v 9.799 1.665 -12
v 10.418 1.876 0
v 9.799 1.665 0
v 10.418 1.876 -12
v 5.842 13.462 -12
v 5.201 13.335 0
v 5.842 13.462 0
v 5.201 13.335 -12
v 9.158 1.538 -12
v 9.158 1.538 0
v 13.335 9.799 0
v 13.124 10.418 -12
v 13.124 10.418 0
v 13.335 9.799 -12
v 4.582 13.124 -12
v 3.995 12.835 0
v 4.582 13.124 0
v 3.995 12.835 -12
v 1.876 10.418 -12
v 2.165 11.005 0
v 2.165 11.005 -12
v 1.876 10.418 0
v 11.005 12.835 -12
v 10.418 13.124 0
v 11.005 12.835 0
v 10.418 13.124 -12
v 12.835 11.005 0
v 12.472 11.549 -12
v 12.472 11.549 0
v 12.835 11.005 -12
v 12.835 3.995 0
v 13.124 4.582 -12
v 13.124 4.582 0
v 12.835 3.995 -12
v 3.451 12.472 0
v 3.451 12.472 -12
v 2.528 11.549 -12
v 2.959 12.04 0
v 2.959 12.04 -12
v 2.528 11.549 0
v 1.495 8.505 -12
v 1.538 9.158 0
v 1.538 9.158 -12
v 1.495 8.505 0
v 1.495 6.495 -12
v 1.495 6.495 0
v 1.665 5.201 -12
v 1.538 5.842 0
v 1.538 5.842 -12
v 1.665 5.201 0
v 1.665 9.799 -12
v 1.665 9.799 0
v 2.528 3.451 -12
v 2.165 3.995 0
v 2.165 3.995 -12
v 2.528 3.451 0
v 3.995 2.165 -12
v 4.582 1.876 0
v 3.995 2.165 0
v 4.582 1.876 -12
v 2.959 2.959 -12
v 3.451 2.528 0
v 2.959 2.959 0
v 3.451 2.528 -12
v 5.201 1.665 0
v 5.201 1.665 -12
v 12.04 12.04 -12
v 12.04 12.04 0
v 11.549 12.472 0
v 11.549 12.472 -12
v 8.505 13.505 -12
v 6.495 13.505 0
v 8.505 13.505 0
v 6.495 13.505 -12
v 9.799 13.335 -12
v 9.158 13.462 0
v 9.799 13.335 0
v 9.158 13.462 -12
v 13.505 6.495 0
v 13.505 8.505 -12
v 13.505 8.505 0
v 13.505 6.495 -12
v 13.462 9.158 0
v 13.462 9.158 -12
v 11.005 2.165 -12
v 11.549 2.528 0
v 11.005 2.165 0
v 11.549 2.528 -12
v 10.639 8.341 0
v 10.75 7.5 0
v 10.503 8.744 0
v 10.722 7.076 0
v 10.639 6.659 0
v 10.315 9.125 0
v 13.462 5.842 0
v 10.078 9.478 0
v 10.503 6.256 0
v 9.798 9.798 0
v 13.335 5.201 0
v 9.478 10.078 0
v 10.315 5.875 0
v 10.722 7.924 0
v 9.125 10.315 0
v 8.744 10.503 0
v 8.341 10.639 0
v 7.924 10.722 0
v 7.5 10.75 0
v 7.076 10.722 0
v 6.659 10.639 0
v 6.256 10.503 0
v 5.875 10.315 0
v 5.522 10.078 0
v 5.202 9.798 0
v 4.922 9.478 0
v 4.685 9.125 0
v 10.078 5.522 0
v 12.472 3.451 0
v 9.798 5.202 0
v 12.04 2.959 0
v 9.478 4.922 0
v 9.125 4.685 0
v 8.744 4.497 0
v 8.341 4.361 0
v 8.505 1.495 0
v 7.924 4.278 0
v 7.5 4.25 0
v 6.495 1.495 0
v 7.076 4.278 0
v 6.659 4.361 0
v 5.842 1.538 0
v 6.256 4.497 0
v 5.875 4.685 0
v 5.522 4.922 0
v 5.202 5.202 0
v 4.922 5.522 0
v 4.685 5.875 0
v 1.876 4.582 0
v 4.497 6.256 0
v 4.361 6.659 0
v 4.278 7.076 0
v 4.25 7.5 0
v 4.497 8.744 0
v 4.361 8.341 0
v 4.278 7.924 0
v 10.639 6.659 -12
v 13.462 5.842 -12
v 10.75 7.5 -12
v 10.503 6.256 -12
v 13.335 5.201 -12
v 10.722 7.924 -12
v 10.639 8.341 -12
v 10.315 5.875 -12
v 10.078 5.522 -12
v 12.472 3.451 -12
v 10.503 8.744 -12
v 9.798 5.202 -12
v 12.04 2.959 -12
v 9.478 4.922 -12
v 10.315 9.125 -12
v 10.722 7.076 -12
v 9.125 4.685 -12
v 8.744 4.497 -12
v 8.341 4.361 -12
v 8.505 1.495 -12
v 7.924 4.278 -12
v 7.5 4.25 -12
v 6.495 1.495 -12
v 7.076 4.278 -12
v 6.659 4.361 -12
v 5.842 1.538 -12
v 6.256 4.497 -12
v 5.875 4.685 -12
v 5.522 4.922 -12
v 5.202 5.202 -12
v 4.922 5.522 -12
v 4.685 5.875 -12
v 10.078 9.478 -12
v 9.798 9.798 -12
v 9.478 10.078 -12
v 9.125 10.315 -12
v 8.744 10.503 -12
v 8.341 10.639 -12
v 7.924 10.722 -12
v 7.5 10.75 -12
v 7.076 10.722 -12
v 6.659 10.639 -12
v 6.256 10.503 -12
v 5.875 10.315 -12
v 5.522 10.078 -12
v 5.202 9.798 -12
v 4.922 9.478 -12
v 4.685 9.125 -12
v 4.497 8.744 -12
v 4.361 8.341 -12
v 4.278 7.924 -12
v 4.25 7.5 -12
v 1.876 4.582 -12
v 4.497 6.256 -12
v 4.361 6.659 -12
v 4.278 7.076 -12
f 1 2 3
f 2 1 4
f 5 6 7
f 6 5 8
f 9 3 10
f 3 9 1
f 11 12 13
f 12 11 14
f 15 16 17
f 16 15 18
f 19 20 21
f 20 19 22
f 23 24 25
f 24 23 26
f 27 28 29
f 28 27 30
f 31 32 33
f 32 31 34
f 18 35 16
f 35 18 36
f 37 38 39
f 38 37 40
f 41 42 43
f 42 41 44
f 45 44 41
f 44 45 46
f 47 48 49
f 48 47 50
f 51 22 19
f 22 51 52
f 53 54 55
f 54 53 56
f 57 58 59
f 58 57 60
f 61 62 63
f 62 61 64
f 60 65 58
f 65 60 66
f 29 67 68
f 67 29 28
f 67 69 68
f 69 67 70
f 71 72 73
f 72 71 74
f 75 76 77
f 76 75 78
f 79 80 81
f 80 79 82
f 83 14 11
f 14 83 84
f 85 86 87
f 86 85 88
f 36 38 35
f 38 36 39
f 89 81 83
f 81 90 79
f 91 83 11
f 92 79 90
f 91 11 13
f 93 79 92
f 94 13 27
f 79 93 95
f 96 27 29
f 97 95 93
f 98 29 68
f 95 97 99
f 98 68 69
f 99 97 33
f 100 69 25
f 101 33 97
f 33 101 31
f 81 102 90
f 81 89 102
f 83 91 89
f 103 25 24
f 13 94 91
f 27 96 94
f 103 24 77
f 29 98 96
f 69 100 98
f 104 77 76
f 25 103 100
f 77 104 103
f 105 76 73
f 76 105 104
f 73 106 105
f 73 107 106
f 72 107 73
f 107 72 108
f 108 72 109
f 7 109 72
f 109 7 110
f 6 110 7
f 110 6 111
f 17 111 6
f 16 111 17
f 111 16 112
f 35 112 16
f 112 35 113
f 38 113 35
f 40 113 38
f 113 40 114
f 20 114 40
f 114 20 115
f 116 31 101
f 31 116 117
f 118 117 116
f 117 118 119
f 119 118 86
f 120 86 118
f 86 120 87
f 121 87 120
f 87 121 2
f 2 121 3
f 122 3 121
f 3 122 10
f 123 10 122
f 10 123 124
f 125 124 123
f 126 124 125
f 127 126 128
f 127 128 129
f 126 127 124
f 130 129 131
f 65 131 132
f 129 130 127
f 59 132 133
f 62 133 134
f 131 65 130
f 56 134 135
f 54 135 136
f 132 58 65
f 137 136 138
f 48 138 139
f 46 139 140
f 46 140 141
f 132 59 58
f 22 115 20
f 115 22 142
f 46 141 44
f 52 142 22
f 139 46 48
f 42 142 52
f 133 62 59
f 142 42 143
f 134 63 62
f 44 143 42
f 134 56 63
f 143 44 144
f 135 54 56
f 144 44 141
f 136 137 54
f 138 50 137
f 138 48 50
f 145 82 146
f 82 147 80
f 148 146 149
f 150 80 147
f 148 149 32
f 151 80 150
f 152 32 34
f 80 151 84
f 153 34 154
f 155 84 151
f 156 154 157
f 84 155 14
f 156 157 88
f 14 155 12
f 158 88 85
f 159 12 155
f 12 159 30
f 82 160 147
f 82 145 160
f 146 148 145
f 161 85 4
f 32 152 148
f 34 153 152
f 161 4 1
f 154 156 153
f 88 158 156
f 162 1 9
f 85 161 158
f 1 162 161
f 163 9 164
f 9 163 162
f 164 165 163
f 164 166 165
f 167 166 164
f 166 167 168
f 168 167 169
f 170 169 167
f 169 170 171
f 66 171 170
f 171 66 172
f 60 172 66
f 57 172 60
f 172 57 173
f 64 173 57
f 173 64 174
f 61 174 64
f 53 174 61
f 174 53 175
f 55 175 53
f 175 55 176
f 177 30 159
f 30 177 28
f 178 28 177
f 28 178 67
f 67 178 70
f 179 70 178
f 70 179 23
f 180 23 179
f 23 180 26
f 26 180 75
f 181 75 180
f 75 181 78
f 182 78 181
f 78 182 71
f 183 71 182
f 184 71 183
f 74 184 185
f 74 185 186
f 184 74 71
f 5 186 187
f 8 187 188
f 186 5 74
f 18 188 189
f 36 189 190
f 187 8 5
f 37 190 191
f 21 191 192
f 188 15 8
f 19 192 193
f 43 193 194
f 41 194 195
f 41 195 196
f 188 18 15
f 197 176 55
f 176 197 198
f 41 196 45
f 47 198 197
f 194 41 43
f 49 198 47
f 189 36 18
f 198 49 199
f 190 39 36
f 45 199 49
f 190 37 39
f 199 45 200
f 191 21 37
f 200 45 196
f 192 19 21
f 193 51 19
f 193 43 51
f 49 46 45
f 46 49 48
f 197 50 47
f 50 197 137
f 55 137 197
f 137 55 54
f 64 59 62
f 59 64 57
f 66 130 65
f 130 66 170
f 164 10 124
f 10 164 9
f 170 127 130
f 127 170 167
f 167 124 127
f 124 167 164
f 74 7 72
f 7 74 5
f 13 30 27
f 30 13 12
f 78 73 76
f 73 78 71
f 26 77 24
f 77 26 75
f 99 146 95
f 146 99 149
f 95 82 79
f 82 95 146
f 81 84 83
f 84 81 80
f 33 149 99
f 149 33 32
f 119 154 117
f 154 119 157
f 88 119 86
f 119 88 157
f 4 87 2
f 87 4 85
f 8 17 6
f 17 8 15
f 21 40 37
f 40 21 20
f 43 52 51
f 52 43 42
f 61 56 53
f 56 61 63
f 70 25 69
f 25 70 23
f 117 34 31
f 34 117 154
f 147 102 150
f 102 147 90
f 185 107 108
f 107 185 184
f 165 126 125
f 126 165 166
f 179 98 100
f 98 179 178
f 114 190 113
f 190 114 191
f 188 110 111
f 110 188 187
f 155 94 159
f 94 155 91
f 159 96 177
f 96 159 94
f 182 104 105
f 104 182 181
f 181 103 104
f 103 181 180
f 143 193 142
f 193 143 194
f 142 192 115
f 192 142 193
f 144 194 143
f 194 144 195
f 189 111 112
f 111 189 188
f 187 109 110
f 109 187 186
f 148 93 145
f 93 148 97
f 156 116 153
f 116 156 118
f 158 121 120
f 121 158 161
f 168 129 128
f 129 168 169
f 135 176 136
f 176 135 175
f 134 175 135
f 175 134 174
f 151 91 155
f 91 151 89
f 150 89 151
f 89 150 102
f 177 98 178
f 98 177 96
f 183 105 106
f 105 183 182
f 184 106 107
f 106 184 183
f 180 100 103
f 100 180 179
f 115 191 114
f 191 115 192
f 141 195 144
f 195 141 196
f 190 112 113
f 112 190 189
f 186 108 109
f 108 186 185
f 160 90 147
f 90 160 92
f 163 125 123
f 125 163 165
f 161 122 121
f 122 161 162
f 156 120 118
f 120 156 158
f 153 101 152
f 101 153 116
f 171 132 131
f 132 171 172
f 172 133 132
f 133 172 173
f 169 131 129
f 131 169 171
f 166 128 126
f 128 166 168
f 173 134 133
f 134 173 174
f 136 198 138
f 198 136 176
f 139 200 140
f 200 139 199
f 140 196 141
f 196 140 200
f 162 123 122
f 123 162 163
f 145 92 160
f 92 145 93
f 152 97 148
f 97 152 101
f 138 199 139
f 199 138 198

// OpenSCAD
// Generated by SolidPython 1.1.3 on 2022-09-14 11:03:27
$fn = 48;


difference() {
	union() {
		color(alpha = 1.0000000000, c = "Gold") {
			translate(v = [7.5000000000, 7.5000000000, 0]) {
				rotate(a = [0, 0, 0]) {
					translate(v = [0, 0, -12]) {
						linear_extrude(height = 12) {
							offset(r = 5) {
								square(center = true, size = [2.0100000000, 2.0100000000]);
							}
						}
					}
				}
			}
		}
	}
	union() {
		color(alpha = 1.0000000000, c = "Gold") {
			translate(v = [7.5000000000, 7.5000000000, 0]) {
				rotate(a = [0, 0, 0]) {
					translate(v = [0, 0, -250]) {
						cylinder(h = 500, r = 3.2500000000);
					}
				}
			}
		}
	}
}
/***********************************************
*********      SolidPython code:      **********
************************************************
 
import subprocess

from solid.objects import *
from solid import scad_render_to_file, scad_render

import os

##################################################################################################################################################
##################################################################################################################################################
##################################################################################################################################################
##################################################################################################################################################
######  DIMENSION STUFF
##################################################################################################################################################
##################################################################################################################################################
##################################################################################################################################################
##################################################################################################################################################


mode = "3DPR"
#mode = "LAZE"
#mode = "TURE"
#mode = ""


######  Countersunk
countersunkM = []
WIDTH = 0
DEPTH = 1
countersunkM1width = 0; countersunkM1depth = 0; countersunkM2width = 0; countersunkM2depth = 0
countersunkM3width = 0
countersunkM3depth = 0
countersunkM4width = 0
countersunkM4depth = 0
countersunkM5width = 0
countersunkM5depth = 0
countersunkM6width = 0
countersunkM6depth = 0

######  Holes
holeM = []
holeM1 = 0
holeM2 = 0
holeM3 = 0
holeM4 = 0
holeM5 = 0
holeM6 = 0

######  Nuts
nutM = []
NUTWIDTH = 0
NUTDEPTH = 1
nutM1width = 0
nutM1depth = 0
nutM2width = 0
nutM2depth = 0
nutM3width = 0
nutM3depth = 0
nutM4width = 0
nutM4depth = 0
nutM5width = 0
nutM5depth = 0
nutM6width = 0
nutM6depth = 0

######  OOEB
ooebPinWidth = 0
ooebPinWidthWide = 0


######  Colors
colDefault = "Gold"

colOOEBbase = colDefault

colLEDRed = "red"
colWire = "gray"
    ######  Resistor
colRes = list()
colResistor = "beige"

colResBlack = "black"
colRes.append(colResBlack)
colResBrown = "brown"
colRes.append(colResBrown)
colResRed = "red"
colRes.append(colResRed)
colResOrange = "orange"
colRes.append(colResOrange)
colResYellow = "yellow"
colRes.append(colResYellow)
colResGreen = "green"
colRes.append(colResGreen)
colResBlue = "blue"
colRes.append(colResBlue)
colResPurple = "purple"
colRes.append(colResPurple)
colResGray = "gray"
colRes.append(colResGray)
colResWhite = "white"
colRes.append(colResWhite)





def changeMode(m="3DPR"):
    #print("####################################################      CHANGING MODES TO: " + m)
    global mode
    mode = m
    ######  Countersunk
    global countersunkM, countersunkM1width, countersunkM1depth, countersunkM2width, countersunkM2depth, countersunkM3width, countersunkM3depth, countersunkM4width, countersunkM4depth, countersunkM5width, countersunkM5depth, countersunkM6width, countersunkM6depth
    countersunkM = []
    countersunkM.append([0,0])
    countersunkM1width = 0 if mode== "3DPR" else 0
    countersunkM1depth = 0 if mode== "3DPR" else 0
    countersunkM.append([countersunkM1width,countersunkM1depth])
    countersunkM2width = 0 if mode== "3DPR" else 0
    countersunkM2depth = 0 if mode== "3DPR" else 0
    countersunkM.append([countersunkM2width,countersunkM2depth])
    countersunkM3width = 5.5/2+0.6 if mode== "3DPR" else 5.5/2
    countersunkM3depth = 1.7 if mode== "3DPR" else 1.7
    countersunkM.append([countersunkM3width,countersunkM3depth])
    countersunkM4width = 0 if mode== "3DPR" else 0
    countersunkM4depth = 0 if mode== "3DPR" else 0
    countersunkM.append([countersunkM4width,countersunkM4depth])
    countersunkM5width = 0 if mode== "3DPR" else 0
    countersunkM5depth = 0 if mode== "3DPR" else 0
    countersunkM.append([countersunkM5width,countersunkM5depth])
    countersunkM6width = 0 if mode== "3DPR" else 0
    countersunkM6depth = 0 if mode== "3DPR" else 0
    countersunkM.append([countersunkM6width,countersunkM6depth])
    ######  Holes
    global holeM, holeM1, holeM2, holeM3, holeM4, holeM5, holeM6, holeM7, holeM8
    holeM = []
    holeM1 = 1.2/2 if mode== "3DPR" else 1/2
    holeM2 = 2.3/2 if mode== "3DPR" else 2/2
    holeM3 = 3.4/2 if mode== "3DPR" else 3/2
    holeM4 = 4.4/2 if mode== "3DPR" else 4/2
    holeM5 = 5.4/2 if mode== "3DPR" else 5/2
    holeM6 = 6.5/2 if mode== "3DPR" else 6/2
    holeM7 = 7.5/2 if mode== "3DPR" else 7/2
    holeM8 = 8.6/2 if mode== "3DPR" else 8/2
    holeM.append(0)
    holeM.append(holeM1)
    holeM.append(holeM2)
    holeM.append(holeM3)
    holeM.append(holeM4)
    holeM.append(holeM5)
    holeM.append(holeM6)
    holeM.append(holeM7)
    holeM.append(holeM8)
    #####  Nuts
    global nutM, nutM1width, nutM1depth, nutM2width, nutM2depth, nutM3width, nutM3depth, nutM4width, nutM4depth, nutM5width, nutM5depth, nutM6width, nutM6depth
    nutM = []
    nutM.append([0,0]) 
    #M1 Nut
    nutM1width = 0
    nutM1depth = 0
    nutM.append([nutM1width,nutM1depth])    
    #M2 Nut
    nutM2width = 0
    nutM2depth = 0
    nutM.append([nutM2width,nutM2depth])    
    #M3 Nut
    nutM3width = 6.05 if mode== "3DPR" else 5.5
    nutM3depth = 2.5 if mode== "3DPR" else 2.5
    nutM.append([nutM3width,nutM3depth])    
    #M4 Nut
    nutM4width = 0
    nutM4depth = 0
    nutM.append([nutM4width,nutM4depth])    
    #M5 Nut
    nutM5width = 0
    nutM5depth = 0
    nutM.append([nutM5width,nutM5depth])    
    #M6 Nut
    nutM6width = 11 if mode== "3DPR" else 10
    nutM6depth = 5 if mode== "3DPR" else 5
    nutM.append([nutM6width,nutM6depth])    

    ######  OOEB
    global ooebPinWidth,  ooebPinWidthWide

    ooebPinWidth = 0.6
    if(mode=="3DPR" or mode=="LAZE"):
        ooebPinWidth = 0.6 + 0.6
    ooebPinWidthWide = 1.2
    if(mode=="3DPR" or mode=="LAZE"):
        ooebPinWidthWide = 1.2 + 0.6


changeMode()


""""    
holeM12D = s=="3DPR" ? 1.4/2 : 1.2/2;
holeM16D = s=="3DPR" ? 1.8/2 : 1.6/2;
holeM2 = s=="3DPR" ? 2.3/2 : 2/2;
holeM25D = s=="3DPR" ? 2.8/2 : 2.5/2;
holeM27D = s=="3DPR" ? 3.1/2 : 2.7/2;    
holeM3 = s=="3DPR" ? 3.4/2 : 3/2;
holeM35D = s=="3DPR" ? 3.9/2 : 35/2;
holeM4 = s=="3DPR" ? 4.4/2 : 4/2;
holeM5 = s=="3DPR" ? 5.4/2 : 5/2;
holeM6 = s=="3DPR" ? 6.5/2 : 6/2;
holeM6Minus = s=="3DPR" ? 5.8/2 : 5.9/2;
holeM7 = s=="3DPR" ? 7.5/2 : 7/2;
holeM8 = s=="3DPR" ? 8.6/2 : 8/2;
holeM9 = s=="3DPR" ? 9.6/2 : 9/2;
holeM10 = s=="3DPR" ? 10.6/2 : 10/2;
holeM11 = s=="3DPR" ? 11.6/2 : 11/2;
holeM12 = s=="3DPR" ? 12.6/2 : 12/2;
holeM13 = s=="3DPR" ? 13.6/2 : 13/2;
holeM14 = s=="3DPR" ? 14.6/2 : 14/2;
holeM15 = s=="3DPR" ? 15.6/2 : 15/2;
holeM16 = s=="3DPR" ? 16.6/2 : 16/2;
holeM17 = s=="3DPR" ? 17.6/2 : 17/2;
holeM18 = s=="3DPR" ? 18.6/2 : 18/2;
holeM19 = s=="3DPR" ? 19.6/2 : 19/2;
holeM20 = s=="3DPR" ? 20.6/2 : 20/2;
"""

##################################################################################################################################################
##################################################################################################################################################
##################################################################################################################################################
##################################################################################################################################################
######  REGULAR STUFF
##################################################################################################################################################
##################################################################################################################################################
##################################################################################################################################################
##################################################################################################################################################


def setMode(mode="3DPR"):
    changeMode(mode)

def getMode():
    return mode



def saveToScad(fileName, parts):
    dir =  os.path.dirname(os.path.abspath(fileName))
    Path(dir).mkdir(parents=True, exist_ok=True)
    file_out = scad_render_to_file(parts, fileName, file_header=f'$fn = 48;')


def saveToDxf(fileIn, fileOut=""):
    if fileOut == "":
        fileOut = fileIn.replace(".scad",".dxf")
    saveToFile(fileIn, fileOut)
    
def saveToPng(fileIn, fileOut="",extra="--render"):
    if fileOut == "":
        fileOut = fileIn.replace(".scad",".png")
    saveToFile(fileIn, fileOut)

def saveToStl(fileIn, fileOut=""):
    if fileOut == "":
        fileOut = fileIn.replace(".scad",".stl")
    saveToFile(fileIn, fileOut)
    
def saveToSvg(fileIn, fileOut=""):
    if fileOut == "":
        fileOut = fileIn.replace(".scad",".svg")
    saveToFile(fileIn, fileOut)

def saveToFile(fileIn, fileOut,extra=""):
    extra = extra + " --colorscheme Tomorrow"

    launchStr = 'openscad -o "' + fileOut + '"' + extra + ' "' + fileIn + '"'
    print("            saveToFile launch string: " + launchStr)
    subprocess.run(launchStr)
    x=0



def insert(item,pos=[None,None,None],x=0,y=0,z=0,ex=0,size=[None,None,None],length=0,rot=[None,None,None],rotX=0,rotY=0,rotZ=0,width=0,height=0,depth=100,rad=0,rad2=0,color=colDefault,alpha=1,OOwidth=0,OOheight=0,holes=True,negative=True, name=""):
    return OPSCInsert(item,pos,x,y,z,ex,size,length,rot,rotX,rotY,rotZ,width,height,depth,rad,rad2,color,alpha,OOwidth,OOheight,holes,negative,name)


def OPSCInsert(item,pos=[None,None,None],x=0,y=0,z=0,ex=0,size=[None,None,None],length=0,rot=[None,None,None],rotX=0,rotY=0,rotZ=0,width=0,height=0,depth=100,rad=0,rad2=0,col=colDefault,alpha=1,OOwidth=0,OOheight=0,holes=True,negative=True, name=""):
    
    """
        color(color,alpha){
            translate([x,y,z]){
                    rotate([rotX,rotY,rotZ]){
    """
    returnValue = ""

    #print(pos)

    if pos[0] != None:
        x=pos[0]
        y=pos[1]
        z=pos[2]
    if rot[0] != None:
        rotX=rot[0]
        rotY=rot[1]
        rotZ=rot[2]
    
    returnValue = color(col)(translate((x,y,z))(
                            rotate((rotX,rotY,rotZ))(
                                OPSCInsertIf(item,pos,x,y,z,ex,size,length,rot,rotX,rotY,rotZ,width,height,depth,rad,rad2,col,alpha,OOwidth,OOheight,holes,negative,name)
                            )
                        ))
                
    

    return returnValue

def OPSCInsertIf(item,pos=[None,None,None],x=0,y=0,z=0,ex=0,size=[None,None,None],length=0,rot=[None,None,None],rotX=0,rotY=0,rotZ=0,width=0,height=0,depth=100,rad=0,rad2=0,color=colDefault,alpha=1,OOwidth=0,OOheight=0,holes=True,negative=True, name=""):
    returnValue = cube([10,10,10])

    if size[0] != None:
        width=size[0]
        height=size[1]
        depth=size[2]

    #print("    OPSCInsert item:" + str(item) + " at:[" + str(x) + "," + str(y) + "," + str(z) + "] size: [" + str(width) + "," + str(height) + "," + str(depth) + "]")

    if(item=="cube"):
        returnValue =  translate([0,0,-depth/2])(cube([width,height,depth],center=True))
    elif(item=="cylinder"):        
        returnValue = translate([0,0,-depth/2])(cylinder(r=rad,h=depth,center=True))
    elif(item=="sphere"):        
        returnValue = translate([0,0,-rad])(sphere(r=rad))
    elif(item=="plane"):
        if depth == 100:
            returnValue = insert("cube",size=[1000,1000,0.1],color=color)            
        else:
            returnValue = insert("cube",size=[1000,1000,depth],color=color)                        
    elif(item=="cubeRounded"):
        if(rad == 0):
                            rad = 5
        returnValue =  translate([0,0,-depth])(
                        linear_extrude(height=depth)(                        
                            offset(r=rad)(
                                square((width-rad*2+.01,height-rad*2+.01),center=True)
                                )
                            )
        )
    ######  Countersunk
    elif(item == "countersunkM1" or item == "csM1" ):
        returnValue = OSPCgetCountersunk(rad=1)
    elif(item == "countersunkM2" or item == "csM2" ):
        returnValue = OSPCgetCountersunk(rad=2)
    elif(item == "countersunkM3" or item == "csM3" ):
        returnValue = OSPCgetCountersunk(rad=3)
    elif(item == "countersunkM4" or item == "csM4" ):
        returnValue = OSPCgetCountersunk(rad=4)
    elif(item == "countersunkM5" or item == "csM5" ):
        returnValue = OSPCgetCountersunk(rad=5)
    elif(item == "countersunkM6" or item == "csM6" ):
        returnValue = OSPCgetCountersunk(rad=6)
    elif(item == "countersunk" or item == "cs"):
        returnValue = OSPCgetCountersunk(rad=rad)


    ######  Holes    
    elif(item == "holeM1"):
        returnValue = OSPCgetHole(rad=1)
    elif(item == "holeM2"):
        returnValue = OSPCgetHole(rad=2)
    elif(item == "holeM3"):
        returnValue = OSPCgetHole(rad=3)
    elif(item == "holeM4"):
        returnValue = OSPCgetHole(rad=4)
    elif(item == "holeM5"):
        returnValue = OSPCgetHole(rad=5)
    elif(item == "holeM6"):
        returnValue = OSPCgetHole(rad=6)
    elif(item == "hole"):
        returnValue = OSPCgetHole(rad=rad)

    ######  Nuts
    elif(item == "nutM1"):
        returnValue = OSPCgetNut(rad=1,depth=depth)
    elif(item == "nutM2"):
        returnValue = OSPCgetNut(rad=2,depth=depth)
    elif(item == "nutM3"):
        returnValue = OSPCgetNut(rad=3,depth=depth)
    elif(item == "nutM4"):
        returnValue = OSPCgetNut(rad=4,depth=depth)
    elif(item == "nutM5"):
        returnValue = OSPCgetNut(rad=5,depth=depth)
    elif(item == "nutM6"):
        returnValue = OSPCgetNut(rad=6,depth=depth)
    elif(item == "nut"):
        returnValue = OSPCgetNut(rad=rad,depth=depth)
    return returnValue

                

def OSPCgetHole(rad):
    return translate([0,0,-250])(cylinder(r=holeM[rad],h=500))

def OSPCgetNut(rad,depth):
    depth = nutM[rad][NUTDEPTH] if depth==100 else depth
    returnValue = OPSChexagon(nutM[rad][NUTWIDTH],depth=depth)
    return returnValue

def OSPCgetCountersunk(rad):
    depth=countersunkM[rad][DEPTH]
    returnValue = translate([0,0,-depth])(cylinder(h=depth,r2=countersunkM[rad][WIDTH],r1=holeM[rad]))
    return returnValue

def OPSChexagon(width,depth):
    cutter = item()
    wid=width*2
    cutter.addPos(insert("cube",pos=[wid/2+width/2,0,0],size=[wid,wid,depth]))
    cutter.addPos(insert("cube",pos=[-wid/2-width/2,0,0],size=[wid,wid,depth]))

    cut = cutter.getPart()
    #print(depth)
    returnValue = difference()(
        translate([0,0,-depth/2])(cube([wid,wid,depth],center=True)),
        cut,
        rotate([0,0,60])(cut),
        rotate([0,0,-60])(cut)
    )

    return returnValue




class item:

    def __init__(self):
        self.posItems=list()
        self.negItems=list()

    def isEmpty(self):        
        testString = scad_render(self.getPart())
        #print("test String length: " + str(len(testString)))
        returnValue = False
        if len(testString) == 270:            
            returnValue = True
        return returnValue

    def addPos(self,part):
        self.posItems.append(part)
    def addNeg(self,part):
        self.negItems.append(part)

    def getPart(self):
        returnValue = difference()(
            union()(self.posItems),
            union()(self.negItems)
        )
        return returnValue

    def getLaser(self,start=0,layers=1,thickness=-3,tileDif=200):
        rv= []

        for x in range(layers):
            rv.append(translate([0,x*tileDif,0])(
                    projection()(
                        intersection()(
                            insert("plane",z=start+x*thickness),
                            self.getPart()
                        )
                    )
            )
            )
        return union()(rv)

    def getSplit(self,start=0,depth=6,tileDif=200):
        rv= []

        rv.append(translate([0,0,0])(
            intersection()(
                insert("cube",size=[100,100,depth],z=start),
                self.getPart()
            )
        )
        )

        rv.append(translate([0,tileDif,depth])(
            intersection()(
                insert("cube",size=[100,100,depth],z=start-depth),
                self.getPart()
            )
        )
        )        
        return union()(rv)


 
 
************************************************/
